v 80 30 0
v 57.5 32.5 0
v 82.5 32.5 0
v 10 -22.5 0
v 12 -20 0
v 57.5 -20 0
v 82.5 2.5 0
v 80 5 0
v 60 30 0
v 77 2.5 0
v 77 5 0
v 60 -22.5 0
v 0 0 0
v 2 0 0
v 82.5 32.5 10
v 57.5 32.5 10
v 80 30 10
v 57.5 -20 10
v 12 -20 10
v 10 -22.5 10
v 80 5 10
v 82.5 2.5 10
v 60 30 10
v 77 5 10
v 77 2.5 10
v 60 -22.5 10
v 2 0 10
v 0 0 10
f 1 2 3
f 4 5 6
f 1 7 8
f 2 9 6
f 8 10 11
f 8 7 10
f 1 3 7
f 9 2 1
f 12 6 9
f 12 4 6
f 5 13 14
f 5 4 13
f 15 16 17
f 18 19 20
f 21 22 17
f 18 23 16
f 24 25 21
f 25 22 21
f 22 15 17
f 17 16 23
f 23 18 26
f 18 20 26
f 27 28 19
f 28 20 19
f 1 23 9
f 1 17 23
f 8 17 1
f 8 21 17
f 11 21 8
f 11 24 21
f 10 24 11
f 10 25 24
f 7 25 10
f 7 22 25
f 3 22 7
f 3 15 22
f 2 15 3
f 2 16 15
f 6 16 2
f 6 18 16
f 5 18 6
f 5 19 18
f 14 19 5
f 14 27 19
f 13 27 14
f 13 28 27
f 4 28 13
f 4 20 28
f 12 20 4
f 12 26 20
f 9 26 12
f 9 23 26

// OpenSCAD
linear_extrude(10) polygon([
    [0,0],
    [10, -22.5],
    [60, -22.5],
    [60, 30],
    [80, 30],
    [80, 5],
    [77, 5],
    
    [77, 2.5],
    [82.5, 2.5],
    [82.5, 32.5],
    [57.5, 32.5],
    [57.5, -20],
    [12, -20],
    [2, 0],
    [0, 0]
]);
